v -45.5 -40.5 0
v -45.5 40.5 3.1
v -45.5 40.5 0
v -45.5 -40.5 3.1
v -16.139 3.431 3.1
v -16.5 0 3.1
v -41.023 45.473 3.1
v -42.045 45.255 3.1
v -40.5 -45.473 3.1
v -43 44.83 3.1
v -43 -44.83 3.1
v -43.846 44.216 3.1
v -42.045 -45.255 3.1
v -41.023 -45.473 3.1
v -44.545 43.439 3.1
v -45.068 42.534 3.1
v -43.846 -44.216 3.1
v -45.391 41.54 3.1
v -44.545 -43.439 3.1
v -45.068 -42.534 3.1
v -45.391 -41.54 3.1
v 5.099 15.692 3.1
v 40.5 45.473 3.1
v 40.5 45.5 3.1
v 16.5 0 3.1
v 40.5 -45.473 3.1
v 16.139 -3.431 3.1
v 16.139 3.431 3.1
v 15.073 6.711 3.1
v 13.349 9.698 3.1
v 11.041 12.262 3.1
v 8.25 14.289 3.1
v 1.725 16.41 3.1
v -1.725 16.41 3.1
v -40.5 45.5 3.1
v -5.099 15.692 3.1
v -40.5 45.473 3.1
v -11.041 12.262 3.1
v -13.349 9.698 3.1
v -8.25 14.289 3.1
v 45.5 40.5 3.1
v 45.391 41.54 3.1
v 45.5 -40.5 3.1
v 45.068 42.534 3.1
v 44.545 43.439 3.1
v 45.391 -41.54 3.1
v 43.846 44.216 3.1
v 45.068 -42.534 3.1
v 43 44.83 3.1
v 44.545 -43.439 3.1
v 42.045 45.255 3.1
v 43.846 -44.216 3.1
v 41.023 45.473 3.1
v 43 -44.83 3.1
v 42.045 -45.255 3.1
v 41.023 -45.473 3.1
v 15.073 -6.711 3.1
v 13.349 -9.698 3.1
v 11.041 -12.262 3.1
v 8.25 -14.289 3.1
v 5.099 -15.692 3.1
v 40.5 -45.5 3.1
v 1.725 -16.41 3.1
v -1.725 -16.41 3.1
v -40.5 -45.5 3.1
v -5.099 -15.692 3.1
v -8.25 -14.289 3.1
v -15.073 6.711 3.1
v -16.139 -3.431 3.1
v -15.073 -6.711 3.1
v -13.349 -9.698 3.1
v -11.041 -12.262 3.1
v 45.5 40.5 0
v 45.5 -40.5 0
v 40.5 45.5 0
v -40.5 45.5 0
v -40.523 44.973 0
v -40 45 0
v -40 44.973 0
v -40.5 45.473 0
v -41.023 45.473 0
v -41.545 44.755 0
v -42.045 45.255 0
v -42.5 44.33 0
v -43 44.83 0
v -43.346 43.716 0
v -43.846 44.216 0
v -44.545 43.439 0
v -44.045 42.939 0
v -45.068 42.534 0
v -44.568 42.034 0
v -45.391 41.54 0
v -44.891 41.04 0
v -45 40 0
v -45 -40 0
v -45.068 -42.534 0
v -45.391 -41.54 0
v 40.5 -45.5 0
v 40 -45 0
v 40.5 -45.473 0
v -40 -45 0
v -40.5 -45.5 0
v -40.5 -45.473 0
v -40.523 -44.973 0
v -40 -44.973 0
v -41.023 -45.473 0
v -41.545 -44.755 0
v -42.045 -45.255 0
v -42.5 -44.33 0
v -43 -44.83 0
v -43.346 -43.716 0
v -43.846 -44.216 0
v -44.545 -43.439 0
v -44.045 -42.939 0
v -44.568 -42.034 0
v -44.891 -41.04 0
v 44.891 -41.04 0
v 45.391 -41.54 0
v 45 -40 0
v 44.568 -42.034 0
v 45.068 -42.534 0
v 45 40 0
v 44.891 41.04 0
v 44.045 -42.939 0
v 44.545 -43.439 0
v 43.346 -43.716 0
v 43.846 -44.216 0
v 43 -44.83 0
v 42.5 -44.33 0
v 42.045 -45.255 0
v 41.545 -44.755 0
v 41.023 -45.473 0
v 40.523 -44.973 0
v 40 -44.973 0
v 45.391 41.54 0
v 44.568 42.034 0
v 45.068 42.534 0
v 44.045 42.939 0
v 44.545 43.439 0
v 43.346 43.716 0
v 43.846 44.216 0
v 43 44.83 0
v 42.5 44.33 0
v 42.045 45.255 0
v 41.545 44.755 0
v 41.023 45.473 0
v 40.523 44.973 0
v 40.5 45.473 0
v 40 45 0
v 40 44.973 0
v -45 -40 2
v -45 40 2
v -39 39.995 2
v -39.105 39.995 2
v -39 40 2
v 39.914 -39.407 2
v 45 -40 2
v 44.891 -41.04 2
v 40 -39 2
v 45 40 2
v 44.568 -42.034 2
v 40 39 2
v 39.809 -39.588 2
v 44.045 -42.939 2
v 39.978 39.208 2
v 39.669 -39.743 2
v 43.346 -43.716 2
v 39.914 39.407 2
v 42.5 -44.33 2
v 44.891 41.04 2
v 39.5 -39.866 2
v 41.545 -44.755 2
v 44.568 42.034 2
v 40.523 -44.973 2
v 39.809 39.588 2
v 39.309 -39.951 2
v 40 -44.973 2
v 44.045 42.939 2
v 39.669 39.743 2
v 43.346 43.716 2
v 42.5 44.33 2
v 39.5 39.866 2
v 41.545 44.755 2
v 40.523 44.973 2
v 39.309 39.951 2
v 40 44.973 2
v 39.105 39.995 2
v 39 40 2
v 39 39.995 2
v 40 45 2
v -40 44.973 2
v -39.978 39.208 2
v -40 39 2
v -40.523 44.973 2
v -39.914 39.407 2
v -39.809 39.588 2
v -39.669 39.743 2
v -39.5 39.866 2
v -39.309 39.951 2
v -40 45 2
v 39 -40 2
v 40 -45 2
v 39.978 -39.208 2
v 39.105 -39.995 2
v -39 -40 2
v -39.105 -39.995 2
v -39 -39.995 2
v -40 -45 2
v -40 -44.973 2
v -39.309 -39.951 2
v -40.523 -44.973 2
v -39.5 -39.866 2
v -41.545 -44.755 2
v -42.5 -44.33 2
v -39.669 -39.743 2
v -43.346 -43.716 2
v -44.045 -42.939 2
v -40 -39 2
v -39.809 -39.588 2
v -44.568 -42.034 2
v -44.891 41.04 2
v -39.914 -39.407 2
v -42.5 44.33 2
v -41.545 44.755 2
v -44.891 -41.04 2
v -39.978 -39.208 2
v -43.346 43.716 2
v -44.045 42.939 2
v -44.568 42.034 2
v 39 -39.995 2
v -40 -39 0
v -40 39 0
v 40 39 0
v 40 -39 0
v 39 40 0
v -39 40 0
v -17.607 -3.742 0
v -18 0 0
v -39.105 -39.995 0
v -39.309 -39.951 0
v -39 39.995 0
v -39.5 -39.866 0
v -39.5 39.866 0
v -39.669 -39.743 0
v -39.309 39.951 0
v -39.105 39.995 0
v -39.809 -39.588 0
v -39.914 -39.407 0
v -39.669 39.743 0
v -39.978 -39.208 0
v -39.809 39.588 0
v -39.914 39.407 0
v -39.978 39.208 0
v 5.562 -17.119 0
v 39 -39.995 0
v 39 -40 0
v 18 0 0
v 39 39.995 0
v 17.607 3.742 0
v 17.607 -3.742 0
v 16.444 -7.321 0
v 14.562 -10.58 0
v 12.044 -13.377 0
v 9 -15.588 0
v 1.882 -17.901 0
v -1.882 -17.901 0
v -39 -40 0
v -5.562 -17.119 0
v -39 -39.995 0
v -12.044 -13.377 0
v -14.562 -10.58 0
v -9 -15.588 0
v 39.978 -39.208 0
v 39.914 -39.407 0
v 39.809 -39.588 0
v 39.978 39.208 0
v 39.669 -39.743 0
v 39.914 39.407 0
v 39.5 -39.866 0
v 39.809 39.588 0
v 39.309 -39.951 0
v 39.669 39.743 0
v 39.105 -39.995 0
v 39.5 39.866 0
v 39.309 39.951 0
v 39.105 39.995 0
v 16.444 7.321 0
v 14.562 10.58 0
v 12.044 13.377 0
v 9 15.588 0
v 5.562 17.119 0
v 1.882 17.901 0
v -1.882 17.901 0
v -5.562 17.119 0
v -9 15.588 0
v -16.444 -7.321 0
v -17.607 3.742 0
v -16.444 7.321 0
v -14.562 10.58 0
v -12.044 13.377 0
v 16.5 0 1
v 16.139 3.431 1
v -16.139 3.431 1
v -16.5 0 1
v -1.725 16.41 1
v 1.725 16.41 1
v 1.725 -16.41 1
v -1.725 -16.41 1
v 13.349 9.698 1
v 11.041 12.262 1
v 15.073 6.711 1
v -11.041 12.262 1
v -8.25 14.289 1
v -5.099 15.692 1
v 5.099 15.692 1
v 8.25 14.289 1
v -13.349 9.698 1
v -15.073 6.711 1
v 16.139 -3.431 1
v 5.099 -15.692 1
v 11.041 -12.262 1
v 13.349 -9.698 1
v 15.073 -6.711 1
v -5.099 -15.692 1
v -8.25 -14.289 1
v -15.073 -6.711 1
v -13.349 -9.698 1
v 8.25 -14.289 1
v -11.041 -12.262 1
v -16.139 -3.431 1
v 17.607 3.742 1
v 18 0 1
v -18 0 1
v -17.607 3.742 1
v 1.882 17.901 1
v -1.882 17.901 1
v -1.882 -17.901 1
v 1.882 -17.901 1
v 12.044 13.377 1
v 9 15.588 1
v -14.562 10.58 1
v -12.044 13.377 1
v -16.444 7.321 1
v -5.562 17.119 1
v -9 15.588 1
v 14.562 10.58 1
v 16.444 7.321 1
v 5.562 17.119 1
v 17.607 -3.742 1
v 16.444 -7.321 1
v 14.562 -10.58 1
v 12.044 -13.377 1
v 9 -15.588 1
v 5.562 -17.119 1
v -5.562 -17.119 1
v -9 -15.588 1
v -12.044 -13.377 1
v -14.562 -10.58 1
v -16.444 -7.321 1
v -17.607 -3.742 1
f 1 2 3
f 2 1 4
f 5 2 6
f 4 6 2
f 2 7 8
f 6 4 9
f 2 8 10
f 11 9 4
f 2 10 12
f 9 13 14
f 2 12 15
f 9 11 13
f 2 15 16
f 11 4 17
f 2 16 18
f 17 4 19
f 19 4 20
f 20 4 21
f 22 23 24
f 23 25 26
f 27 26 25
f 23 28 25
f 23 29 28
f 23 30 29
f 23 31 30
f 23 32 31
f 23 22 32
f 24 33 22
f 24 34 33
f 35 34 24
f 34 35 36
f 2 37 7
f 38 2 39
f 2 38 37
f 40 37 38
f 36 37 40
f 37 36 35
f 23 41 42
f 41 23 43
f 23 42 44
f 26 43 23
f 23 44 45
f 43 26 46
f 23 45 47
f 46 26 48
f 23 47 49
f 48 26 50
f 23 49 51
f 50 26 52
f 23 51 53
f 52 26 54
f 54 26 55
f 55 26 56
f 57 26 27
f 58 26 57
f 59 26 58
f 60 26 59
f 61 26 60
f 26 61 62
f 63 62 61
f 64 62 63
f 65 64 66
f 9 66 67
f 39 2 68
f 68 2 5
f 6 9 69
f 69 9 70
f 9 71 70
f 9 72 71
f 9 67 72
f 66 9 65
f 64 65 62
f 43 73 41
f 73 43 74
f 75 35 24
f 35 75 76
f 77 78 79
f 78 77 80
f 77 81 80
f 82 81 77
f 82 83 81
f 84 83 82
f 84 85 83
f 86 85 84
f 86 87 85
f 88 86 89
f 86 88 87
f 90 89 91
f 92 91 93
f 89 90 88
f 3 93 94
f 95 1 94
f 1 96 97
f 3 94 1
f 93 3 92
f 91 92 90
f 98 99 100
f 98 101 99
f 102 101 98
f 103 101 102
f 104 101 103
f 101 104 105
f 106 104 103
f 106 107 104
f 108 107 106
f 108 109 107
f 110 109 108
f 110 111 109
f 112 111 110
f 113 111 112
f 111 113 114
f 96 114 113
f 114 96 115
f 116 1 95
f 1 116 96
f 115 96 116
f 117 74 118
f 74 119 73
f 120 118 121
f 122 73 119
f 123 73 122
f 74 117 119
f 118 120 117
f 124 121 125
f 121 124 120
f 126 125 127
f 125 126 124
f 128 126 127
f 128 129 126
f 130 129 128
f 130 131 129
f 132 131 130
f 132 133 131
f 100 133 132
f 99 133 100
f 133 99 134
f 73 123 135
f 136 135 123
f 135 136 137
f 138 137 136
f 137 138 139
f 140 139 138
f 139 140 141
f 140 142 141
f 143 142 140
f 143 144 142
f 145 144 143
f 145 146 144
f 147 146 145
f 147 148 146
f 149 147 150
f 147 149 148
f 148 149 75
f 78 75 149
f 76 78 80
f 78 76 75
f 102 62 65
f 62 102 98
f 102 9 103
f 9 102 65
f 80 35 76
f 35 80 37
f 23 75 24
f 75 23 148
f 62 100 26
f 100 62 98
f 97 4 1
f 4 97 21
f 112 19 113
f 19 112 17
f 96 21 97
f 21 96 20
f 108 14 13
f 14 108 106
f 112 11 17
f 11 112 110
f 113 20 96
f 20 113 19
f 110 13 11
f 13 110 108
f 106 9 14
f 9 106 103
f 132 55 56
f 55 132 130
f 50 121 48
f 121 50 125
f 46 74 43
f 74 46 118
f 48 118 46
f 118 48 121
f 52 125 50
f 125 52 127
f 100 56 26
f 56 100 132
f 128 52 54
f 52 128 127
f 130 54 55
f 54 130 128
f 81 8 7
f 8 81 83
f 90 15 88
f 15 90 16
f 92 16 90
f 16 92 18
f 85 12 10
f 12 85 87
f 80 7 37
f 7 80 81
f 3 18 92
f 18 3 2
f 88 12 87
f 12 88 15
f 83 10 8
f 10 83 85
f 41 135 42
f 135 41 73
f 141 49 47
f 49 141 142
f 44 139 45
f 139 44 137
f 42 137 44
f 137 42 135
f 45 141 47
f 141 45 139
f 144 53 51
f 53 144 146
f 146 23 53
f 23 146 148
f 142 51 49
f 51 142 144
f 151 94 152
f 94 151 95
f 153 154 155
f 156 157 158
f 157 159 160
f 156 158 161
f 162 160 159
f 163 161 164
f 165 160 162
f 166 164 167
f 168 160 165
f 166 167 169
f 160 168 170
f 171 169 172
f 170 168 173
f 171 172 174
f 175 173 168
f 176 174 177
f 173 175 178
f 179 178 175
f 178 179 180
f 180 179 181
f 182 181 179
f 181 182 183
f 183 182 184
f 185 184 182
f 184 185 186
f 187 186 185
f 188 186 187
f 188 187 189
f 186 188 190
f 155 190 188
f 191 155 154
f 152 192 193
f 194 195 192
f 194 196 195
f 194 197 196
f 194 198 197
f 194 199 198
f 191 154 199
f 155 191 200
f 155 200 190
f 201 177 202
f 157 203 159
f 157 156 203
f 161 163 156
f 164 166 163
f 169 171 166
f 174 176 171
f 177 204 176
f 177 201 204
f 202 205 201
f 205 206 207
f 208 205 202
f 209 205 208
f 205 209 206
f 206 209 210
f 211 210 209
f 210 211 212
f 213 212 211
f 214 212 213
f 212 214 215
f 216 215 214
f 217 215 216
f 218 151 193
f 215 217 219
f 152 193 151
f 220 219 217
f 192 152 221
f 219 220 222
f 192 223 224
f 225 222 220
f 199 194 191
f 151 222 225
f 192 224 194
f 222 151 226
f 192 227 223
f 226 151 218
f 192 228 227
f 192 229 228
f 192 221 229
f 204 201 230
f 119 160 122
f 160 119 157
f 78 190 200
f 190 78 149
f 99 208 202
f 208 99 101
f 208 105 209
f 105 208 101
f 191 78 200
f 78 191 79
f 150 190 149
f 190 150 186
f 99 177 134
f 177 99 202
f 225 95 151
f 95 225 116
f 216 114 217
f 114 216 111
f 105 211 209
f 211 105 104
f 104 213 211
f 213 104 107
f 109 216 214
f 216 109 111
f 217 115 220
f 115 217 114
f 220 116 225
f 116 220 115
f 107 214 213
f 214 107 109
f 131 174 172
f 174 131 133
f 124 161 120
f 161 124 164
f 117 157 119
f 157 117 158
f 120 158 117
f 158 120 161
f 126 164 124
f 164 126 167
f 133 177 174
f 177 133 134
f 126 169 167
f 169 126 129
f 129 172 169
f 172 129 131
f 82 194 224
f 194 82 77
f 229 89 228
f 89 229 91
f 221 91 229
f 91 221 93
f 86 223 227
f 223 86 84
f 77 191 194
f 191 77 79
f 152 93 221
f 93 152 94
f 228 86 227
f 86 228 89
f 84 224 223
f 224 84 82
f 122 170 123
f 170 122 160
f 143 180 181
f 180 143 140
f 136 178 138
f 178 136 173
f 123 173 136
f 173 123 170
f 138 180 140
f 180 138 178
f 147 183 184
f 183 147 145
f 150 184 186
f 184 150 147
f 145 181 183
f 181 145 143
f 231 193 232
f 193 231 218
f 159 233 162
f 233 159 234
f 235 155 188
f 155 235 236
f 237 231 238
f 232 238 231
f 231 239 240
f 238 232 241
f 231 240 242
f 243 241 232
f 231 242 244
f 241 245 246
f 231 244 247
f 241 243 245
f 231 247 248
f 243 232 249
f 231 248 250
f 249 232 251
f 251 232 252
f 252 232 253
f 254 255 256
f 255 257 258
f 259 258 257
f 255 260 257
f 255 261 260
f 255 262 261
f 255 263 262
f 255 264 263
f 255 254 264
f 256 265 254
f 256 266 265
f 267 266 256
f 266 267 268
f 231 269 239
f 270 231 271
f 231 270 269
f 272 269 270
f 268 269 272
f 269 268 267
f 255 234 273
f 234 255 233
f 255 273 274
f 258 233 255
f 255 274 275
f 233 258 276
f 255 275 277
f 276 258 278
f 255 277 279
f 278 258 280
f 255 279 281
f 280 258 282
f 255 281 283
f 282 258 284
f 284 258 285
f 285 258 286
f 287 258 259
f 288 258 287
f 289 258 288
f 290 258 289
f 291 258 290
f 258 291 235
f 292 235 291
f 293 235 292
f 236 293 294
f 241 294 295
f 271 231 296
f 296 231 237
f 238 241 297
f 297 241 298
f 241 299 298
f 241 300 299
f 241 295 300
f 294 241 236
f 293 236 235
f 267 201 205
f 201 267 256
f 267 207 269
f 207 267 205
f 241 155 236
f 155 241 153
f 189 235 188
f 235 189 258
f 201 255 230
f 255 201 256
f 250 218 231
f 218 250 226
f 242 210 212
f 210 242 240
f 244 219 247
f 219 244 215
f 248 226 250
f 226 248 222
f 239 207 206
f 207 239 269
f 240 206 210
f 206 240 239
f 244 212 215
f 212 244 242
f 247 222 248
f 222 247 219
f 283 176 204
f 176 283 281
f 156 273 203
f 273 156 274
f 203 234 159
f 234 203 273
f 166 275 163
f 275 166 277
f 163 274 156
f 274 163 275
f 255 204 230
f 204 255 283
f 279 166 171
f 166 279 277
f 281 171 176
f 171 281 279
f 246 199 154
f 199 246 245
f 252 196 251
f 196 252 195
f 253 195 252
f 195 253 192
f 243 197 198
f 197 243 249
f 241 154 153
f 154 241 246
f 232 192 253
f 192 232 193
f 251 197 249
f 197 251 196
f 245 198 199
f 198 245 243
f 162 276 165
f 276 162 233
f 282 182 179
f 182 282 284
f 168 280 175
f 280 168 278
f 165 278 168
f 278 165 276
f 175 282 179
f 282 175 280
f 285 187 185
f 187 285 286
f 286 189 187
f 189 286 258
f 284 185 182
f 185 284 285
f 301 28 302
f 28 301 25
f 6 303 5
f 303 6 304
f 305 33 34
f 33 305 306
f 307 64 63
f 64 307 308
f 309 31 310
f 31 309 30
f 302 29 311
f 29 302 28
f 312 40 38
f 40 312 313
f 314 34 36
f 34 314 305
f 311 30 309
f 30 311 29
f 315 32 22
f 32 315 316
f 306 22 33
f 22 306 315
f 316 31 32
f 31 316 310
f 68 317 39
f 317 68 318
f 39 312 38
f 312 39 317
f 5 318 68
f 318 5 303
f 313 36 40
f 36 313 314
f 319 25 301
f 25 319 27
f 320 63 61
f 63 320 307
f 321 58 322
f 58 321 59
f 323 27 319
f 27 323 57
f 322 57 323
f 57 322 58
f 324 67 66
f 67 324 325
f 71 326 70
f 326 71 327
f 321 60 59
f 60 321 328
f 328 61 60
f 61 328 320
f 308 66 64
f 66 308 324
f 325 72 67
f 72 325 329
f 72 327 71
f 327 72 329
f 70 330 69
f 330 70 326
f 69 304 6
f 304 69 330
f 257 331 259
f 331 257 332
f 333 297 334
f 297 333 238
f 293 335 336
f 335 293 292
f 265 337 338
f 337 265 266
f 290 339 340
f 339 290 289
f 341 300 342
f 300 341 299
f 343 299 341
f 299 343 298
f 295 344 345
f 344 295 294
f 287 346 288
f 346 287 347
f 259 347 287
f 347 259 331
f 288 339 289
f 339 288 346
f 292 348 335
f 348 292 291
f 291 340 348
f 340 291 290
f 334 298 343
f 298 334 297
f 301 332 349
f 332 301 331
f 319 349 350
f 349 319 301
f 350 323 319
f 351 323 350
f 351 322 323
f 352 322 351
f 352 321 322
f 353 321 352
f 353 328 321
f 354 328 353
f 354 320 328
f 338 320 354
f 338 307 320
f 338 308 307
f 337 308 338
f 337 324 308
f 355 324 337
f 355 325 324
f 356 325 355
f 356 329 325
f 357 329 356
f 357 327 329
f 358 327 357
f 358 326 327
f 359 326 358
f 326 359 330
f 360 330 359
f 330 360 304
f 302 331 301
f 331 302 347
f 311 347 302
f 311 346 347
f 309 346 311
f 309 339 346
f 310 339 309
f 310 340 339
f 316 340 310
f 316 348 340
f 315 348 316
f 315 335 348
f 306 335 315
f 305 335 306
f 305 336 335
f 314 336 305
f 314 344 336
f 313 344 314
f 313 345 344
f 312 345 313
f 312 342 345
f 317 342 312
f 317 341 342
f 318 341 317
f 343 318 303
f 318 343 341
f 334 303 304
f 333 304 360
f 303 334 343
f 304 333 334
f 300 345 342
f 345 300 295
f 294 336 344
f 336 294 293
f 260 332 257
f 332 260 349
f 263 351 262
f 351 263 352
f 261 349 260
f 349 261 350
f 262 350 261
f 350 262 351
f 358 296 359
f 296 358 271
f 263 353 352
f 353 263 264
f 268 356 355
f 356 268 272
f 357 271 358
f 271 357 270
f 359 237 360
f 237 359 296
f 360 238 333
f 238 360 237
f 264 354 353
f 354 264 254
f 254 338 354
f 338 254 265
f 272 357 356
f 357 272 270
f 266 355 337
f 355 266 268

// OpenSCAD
$fs=0.1;
extra = 0.5;


module box(width,depth,height){
    translate([-width/2.0, -depth/2.0, 0]){
        cube([width,depth,height]);
    }
}

module plate(width,depth,height, cornerRadius,corners)
{
    translate([-width/2.0, -depth/2.0, 0])
    {
        difference()
        {
            cube([width,depth,height]);
            if (corners[0]==1){
                translate([-extra,-extra,-extra])
                {
                     cube([cornerRadius+extra,cornerRadius+extra,height+2*extra]);
                }
            }
            if (corners[1]==1){
                translate([-extra,depth-cornerRadius,-extra])
                {
                    cube([cornerRadius+extra,cornerRadius+extra,height+2*extra]);
                }
            }
            if (corners[2]==1){
                translate([width-cornerRadius,depth-cornerRadius,-extra])
                { 
                    cube([cornerRadius+extra,cornerRadius+extra,height+2*extra]);
                }
            }
            if (corners[3]==1){
                translate([width-cornerRadius,-extra,-extra])
                {
                    cube([cornerRadius+extra,cornerRadius+extra,height+2*extra]);
                }
            }
        }
        translate([cornerRadius,cornerRadius,0]) cylinder(r=cornerRadius,h=height);
        translate([width-cornerRadius,cornerRadius,0]) cylinder(r=cornerRadius,h=height);
        translate([cornerRadius,depth-cornerRadius,0]) cylinder(r=cornerRadius,h=height);
        translate([width-cornerRadius,depth-cornerRadius,0]) cylinder(r=cornerRadius,h=height);
    }
}   

module lensBoard()
{
    difference(){
        union(){
            difference(){
                width = 91;
                depth = 91;
                thickness = 3.1;
                plate(width,depth,thickness,5,[1,1,1,1]);
                edgeThickness = 1;
                translate([0,0,-edgeThickness]){
                    plate(width-edgeThickness,depth-edgeThickness,3,5,[1,1,1,1]);
                }
            }
            plate(80,80,3,1,[1,1,1,1]);
        }
        translate([0,0,-1]){
            cylinder(10,16.5,16.5);
        }
        translate([0,0,-1]){
            cylinder(2,18,18);
        }
    }
}


lensBoard();
